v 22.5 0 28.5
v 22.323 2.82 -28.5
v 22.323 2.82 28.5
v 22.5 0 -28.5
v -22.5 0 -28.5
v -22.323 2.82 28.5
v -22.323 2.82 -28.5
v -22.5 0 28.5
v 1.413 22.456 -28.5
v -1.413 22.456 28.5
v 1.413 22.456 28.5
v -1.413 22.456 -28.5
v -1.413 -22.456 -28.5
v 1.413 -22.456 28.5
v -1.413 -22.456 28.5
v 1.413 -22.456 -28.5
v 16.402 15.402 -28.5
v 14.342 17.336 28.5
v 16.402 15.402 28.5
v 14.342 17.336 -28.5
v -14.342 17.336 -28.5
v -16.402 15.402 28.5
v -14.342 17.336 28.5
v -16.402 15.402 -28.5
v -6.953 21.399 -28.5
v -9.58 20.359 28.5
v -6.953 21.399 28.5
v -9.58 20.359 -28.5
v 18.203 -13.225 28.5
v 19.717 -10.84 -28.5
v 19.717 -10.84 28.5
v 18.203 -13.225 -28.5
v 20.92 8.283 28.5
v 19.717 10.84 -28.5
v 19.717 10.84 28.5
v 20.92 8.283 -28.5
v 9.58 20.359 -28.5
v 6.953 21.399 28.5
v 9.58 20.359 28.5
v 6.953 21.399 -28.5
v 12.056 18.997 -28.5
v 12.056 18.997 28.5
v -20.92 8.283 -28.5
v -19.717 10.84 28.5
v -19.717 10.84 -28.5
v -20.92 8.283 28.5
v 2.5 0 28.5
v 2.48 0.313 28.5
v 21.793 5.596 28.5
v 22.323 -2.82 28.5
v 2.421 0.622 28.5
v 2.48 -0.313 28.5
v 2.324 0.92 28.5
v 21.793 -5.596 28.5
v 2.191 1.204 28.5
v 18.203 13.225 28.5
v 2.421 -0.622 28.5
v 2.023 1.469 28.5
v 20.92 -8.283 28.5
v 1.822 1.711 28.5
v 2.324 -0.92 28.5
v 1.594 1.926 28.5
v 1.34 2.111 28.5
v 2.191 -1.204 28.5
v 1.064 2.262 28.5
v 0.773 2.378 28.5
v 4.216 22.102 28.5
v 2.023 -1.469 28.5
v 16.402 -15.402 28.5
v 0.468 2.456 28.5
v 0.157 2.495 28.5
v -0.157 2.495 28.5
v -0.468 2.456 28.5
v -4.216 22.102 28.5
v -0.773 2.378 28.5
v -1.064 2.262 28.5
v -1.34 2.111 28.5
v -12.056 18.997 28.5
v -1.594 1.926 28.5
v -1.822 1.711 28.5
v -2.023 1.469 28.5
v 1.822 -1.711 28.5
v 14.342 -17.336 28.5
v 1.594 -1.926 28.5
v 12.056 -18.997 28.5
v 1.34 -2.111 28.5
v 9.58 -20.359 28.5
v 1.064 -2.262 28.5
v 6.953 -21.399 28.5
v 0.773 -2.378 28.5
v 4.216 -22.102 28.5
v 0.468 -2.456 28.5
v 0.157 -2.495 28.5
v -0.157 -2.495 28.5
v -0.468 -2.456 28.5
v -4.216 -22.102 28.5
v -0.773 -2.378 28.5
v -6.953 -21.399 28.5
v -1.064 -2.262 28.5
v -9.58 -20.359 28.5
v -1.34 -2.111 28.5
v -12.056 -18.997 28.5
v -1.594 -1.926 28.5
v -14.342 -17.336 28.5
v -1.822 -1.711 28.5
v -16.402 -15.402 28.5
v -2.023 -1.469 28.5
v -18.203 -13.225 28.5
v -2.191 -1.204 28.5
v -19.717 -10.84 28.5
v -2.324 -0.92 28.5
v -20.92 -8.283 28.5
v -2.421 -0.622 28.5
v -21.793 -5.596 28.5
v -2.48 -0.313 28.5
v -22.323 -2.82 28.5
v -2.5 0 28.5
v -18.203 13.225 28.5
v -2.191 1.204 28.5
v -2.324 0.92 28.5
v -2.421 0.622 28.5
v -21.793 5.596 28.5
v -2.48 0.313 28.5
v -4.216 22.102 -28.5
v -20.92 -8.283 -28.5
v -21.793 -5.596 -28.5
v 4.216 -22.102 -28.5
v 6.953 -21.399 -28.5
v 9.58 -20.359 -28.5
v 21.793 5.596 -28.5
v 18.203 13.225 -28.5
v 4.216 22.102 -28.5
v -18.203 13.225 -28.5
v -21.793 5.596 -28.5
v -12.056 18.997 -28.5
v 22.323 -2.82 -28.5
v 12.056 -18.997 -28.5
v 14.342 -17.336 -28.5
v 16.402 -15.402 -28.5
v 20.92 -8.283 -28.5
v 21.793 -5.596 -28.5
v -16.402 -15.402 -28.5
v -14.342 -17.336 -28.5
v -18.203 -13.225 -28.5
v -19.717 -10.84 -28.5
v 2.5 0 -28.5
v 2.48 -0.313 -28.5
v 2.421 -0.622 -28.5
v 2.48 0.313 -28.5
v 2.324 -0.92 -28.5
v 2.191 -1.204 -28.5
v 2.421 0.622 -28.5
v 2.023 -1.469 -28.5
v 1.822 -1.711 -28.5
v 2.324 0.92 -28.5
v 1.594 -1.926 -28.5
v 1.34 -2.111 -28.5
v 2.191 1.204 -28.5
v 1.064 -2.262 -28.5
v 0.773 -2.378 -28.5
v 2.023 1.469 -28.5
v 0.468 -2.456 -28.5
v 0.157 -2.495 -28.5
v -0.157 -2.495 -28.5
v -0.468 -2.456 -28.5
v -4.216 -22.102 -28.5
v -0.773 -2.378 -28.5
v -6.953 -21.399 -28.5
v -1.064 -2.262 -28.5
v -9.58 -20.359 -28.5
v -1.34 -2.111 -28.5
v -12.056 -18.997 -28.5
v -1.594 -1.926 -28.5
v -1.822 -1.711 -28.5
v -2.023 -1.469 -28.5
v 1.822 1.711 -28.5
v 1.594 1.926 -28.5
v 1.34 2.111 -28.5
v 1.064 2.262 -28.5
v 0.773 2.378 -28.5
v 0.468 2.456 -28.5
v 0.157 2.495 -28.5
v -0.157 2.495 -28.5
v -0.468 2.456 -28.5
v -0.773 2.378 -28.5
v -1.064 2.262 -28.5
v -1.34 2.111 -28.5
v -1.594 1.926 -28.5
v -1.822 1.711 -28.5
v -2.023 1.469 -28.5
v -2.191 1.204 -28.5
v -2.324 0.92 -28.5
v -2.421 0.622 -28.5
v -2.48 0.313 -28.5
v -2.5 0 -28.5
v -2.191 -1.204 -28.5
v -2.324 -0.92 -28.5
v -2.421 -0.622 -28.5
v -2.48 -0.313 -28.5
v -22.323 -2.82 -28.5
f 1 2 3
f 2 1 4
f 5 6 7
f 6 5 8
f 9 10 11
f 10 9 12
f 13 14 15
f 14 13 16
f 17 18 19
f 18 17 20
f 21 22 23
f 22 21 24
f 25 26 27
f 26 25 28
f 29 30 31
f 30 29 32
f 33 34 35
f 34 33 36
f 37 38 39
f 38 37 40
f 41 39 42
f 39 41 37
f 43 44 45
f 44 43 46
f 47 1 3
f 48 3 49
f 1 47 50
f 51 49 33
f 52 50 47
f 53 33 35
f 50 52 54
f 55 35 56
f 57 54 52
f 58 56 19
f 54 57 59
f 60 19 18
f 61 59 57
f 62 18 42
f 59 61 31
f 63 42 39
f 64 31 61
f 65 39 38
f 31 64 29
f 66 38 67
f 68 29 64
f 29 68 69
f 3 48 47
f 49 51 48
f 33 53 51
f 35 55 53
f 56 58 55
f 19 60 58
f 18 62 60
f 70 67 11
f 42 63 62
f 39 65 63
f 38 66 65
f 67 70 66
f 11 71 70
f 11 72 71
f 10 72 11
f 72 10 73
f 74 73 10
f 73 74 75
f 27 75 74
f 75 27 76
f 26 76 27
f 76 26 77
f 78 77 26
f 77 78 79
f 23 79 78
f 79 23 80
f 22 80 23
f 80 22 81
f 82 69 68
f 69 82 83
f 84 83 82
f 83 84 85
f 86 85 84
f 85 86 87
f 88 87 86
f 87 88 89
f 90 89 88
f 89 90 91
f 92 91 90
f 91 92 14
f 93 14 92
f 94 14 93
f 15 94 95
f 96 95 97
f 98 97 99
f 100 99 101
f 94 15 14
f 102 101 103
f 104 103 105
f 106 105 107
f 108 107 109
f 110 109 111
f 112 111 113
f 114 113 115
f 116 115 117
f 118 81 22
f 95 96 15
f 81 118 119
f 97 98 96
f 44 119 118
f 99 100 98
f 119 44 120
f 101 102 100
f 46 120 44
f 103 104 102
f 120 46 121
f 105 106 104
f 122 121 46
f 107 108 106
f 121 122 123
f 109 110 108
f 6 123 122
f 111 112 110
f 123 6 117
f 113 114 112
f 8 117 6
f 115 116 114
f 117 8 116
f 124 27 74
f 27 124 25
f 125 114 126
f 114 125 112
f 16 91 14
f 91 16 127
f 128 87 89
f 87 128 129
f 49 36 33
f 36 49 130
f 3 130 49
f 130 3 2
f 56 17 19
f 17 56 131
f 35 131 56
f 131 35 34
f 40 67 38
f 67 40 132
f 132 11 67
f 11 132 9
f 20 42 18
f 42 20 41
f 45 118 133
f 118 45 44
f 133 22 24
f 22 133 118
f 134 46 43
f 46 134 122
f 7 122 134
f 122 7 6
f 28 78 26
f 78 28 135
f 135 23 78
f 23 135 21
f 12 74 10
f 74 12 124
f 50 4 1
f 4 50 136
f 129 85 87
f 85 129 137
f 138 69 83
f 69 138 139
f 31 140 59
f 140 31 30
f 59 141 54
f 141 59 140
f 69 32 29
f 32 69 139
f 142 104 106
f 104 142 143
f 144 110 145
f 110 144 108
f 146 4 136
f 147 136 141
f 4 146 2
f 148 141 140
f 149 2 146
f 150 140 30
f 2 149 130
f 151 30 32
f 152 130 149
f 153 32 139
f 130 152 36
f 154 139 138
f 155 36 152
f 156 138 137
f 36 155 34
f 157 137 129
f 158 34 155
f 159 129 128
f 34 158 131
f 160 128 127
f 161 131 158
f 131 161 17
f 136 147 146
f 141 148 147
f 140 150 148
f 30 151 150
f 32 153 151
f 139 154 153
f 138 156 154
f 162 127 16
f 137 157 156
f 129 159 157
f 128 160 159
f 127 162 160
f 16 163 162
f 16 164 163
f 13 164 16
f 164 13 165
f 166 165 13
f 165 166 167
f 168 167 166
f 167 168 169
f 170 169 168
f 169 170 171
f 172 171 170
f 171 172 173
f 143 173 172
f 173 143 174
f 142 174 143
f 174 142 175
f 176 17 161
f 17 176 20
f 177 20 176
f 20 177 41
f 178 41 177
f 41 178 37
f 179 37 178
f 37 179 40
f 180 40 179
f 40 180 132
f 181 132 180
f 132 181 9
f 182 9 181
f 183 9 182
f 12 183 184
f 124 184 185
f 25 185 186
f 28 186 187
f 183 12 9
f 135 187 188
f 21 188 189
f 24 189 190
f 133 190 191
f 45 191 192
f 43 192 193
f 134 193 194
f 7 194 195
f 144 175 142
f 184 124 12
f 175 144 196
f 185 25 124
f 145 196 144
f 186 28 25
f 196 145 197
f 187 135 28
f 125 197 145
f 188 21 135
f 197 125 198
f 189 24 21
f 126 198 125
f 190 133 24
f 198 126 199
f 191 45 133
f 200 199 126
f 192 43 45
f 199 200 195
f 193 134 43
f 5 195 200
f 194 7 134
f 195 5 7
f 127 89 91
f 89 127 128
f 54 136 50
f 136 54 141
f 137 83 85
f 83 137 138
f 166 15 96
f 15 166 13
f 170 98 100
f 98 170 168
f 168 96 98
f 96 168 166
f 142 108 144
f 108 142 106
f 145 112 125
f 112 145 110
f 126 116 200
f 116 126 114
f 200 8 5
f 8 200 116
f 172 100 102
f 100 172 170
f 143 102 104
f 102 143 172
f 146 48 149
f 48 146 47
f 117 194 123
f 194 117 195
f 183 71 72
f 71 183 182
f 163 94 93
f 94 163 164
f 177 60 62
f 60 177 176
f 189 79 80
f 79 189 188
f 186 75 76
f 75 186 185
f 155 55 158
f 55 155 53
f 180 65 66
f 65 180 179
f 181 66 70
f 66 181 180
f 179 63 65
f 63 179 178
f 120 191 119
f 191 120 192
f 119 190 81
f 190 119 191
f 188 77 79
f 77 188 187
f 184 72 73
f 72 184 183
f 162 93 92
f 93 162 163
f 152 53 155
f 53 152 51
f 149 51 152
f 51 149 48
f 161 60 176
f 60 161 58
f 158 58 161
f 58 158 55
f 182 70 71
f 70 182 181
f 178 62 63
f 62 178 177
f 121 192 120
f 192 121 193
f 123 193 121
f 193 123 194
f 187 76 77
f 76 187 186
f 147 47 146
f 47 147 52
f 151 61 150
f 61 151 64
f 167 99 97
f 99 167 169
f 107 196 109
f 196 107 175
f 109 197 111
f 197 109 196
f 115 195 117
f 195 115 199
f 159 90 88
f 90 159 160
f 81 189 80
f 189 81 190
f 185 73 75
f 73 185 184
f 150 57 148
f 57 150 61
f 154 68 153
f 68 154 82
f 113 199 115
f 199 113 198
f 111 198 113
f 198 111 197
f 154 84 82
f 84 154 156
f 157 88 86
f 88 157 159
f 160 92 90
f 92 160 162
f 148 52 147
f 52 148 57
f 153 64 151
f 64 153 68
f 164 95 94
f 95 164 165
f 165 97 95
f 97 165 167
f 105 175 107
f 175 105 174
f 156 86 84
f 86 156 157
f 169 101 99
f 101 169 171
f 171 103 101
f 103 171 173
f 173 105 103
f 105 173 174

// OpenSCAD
$fn = 50;


difference() {
	union() {
		translate(v = [0, 0, -28.5000000000]) {
			cylinder(h = 57, r = 22.5000000000);
		}
	}
	union() {
		translate(v = [0, 0, -100.0000000000]) {
			cylinder(h = 200, r = 2.5000000000);
		}
	}
}
